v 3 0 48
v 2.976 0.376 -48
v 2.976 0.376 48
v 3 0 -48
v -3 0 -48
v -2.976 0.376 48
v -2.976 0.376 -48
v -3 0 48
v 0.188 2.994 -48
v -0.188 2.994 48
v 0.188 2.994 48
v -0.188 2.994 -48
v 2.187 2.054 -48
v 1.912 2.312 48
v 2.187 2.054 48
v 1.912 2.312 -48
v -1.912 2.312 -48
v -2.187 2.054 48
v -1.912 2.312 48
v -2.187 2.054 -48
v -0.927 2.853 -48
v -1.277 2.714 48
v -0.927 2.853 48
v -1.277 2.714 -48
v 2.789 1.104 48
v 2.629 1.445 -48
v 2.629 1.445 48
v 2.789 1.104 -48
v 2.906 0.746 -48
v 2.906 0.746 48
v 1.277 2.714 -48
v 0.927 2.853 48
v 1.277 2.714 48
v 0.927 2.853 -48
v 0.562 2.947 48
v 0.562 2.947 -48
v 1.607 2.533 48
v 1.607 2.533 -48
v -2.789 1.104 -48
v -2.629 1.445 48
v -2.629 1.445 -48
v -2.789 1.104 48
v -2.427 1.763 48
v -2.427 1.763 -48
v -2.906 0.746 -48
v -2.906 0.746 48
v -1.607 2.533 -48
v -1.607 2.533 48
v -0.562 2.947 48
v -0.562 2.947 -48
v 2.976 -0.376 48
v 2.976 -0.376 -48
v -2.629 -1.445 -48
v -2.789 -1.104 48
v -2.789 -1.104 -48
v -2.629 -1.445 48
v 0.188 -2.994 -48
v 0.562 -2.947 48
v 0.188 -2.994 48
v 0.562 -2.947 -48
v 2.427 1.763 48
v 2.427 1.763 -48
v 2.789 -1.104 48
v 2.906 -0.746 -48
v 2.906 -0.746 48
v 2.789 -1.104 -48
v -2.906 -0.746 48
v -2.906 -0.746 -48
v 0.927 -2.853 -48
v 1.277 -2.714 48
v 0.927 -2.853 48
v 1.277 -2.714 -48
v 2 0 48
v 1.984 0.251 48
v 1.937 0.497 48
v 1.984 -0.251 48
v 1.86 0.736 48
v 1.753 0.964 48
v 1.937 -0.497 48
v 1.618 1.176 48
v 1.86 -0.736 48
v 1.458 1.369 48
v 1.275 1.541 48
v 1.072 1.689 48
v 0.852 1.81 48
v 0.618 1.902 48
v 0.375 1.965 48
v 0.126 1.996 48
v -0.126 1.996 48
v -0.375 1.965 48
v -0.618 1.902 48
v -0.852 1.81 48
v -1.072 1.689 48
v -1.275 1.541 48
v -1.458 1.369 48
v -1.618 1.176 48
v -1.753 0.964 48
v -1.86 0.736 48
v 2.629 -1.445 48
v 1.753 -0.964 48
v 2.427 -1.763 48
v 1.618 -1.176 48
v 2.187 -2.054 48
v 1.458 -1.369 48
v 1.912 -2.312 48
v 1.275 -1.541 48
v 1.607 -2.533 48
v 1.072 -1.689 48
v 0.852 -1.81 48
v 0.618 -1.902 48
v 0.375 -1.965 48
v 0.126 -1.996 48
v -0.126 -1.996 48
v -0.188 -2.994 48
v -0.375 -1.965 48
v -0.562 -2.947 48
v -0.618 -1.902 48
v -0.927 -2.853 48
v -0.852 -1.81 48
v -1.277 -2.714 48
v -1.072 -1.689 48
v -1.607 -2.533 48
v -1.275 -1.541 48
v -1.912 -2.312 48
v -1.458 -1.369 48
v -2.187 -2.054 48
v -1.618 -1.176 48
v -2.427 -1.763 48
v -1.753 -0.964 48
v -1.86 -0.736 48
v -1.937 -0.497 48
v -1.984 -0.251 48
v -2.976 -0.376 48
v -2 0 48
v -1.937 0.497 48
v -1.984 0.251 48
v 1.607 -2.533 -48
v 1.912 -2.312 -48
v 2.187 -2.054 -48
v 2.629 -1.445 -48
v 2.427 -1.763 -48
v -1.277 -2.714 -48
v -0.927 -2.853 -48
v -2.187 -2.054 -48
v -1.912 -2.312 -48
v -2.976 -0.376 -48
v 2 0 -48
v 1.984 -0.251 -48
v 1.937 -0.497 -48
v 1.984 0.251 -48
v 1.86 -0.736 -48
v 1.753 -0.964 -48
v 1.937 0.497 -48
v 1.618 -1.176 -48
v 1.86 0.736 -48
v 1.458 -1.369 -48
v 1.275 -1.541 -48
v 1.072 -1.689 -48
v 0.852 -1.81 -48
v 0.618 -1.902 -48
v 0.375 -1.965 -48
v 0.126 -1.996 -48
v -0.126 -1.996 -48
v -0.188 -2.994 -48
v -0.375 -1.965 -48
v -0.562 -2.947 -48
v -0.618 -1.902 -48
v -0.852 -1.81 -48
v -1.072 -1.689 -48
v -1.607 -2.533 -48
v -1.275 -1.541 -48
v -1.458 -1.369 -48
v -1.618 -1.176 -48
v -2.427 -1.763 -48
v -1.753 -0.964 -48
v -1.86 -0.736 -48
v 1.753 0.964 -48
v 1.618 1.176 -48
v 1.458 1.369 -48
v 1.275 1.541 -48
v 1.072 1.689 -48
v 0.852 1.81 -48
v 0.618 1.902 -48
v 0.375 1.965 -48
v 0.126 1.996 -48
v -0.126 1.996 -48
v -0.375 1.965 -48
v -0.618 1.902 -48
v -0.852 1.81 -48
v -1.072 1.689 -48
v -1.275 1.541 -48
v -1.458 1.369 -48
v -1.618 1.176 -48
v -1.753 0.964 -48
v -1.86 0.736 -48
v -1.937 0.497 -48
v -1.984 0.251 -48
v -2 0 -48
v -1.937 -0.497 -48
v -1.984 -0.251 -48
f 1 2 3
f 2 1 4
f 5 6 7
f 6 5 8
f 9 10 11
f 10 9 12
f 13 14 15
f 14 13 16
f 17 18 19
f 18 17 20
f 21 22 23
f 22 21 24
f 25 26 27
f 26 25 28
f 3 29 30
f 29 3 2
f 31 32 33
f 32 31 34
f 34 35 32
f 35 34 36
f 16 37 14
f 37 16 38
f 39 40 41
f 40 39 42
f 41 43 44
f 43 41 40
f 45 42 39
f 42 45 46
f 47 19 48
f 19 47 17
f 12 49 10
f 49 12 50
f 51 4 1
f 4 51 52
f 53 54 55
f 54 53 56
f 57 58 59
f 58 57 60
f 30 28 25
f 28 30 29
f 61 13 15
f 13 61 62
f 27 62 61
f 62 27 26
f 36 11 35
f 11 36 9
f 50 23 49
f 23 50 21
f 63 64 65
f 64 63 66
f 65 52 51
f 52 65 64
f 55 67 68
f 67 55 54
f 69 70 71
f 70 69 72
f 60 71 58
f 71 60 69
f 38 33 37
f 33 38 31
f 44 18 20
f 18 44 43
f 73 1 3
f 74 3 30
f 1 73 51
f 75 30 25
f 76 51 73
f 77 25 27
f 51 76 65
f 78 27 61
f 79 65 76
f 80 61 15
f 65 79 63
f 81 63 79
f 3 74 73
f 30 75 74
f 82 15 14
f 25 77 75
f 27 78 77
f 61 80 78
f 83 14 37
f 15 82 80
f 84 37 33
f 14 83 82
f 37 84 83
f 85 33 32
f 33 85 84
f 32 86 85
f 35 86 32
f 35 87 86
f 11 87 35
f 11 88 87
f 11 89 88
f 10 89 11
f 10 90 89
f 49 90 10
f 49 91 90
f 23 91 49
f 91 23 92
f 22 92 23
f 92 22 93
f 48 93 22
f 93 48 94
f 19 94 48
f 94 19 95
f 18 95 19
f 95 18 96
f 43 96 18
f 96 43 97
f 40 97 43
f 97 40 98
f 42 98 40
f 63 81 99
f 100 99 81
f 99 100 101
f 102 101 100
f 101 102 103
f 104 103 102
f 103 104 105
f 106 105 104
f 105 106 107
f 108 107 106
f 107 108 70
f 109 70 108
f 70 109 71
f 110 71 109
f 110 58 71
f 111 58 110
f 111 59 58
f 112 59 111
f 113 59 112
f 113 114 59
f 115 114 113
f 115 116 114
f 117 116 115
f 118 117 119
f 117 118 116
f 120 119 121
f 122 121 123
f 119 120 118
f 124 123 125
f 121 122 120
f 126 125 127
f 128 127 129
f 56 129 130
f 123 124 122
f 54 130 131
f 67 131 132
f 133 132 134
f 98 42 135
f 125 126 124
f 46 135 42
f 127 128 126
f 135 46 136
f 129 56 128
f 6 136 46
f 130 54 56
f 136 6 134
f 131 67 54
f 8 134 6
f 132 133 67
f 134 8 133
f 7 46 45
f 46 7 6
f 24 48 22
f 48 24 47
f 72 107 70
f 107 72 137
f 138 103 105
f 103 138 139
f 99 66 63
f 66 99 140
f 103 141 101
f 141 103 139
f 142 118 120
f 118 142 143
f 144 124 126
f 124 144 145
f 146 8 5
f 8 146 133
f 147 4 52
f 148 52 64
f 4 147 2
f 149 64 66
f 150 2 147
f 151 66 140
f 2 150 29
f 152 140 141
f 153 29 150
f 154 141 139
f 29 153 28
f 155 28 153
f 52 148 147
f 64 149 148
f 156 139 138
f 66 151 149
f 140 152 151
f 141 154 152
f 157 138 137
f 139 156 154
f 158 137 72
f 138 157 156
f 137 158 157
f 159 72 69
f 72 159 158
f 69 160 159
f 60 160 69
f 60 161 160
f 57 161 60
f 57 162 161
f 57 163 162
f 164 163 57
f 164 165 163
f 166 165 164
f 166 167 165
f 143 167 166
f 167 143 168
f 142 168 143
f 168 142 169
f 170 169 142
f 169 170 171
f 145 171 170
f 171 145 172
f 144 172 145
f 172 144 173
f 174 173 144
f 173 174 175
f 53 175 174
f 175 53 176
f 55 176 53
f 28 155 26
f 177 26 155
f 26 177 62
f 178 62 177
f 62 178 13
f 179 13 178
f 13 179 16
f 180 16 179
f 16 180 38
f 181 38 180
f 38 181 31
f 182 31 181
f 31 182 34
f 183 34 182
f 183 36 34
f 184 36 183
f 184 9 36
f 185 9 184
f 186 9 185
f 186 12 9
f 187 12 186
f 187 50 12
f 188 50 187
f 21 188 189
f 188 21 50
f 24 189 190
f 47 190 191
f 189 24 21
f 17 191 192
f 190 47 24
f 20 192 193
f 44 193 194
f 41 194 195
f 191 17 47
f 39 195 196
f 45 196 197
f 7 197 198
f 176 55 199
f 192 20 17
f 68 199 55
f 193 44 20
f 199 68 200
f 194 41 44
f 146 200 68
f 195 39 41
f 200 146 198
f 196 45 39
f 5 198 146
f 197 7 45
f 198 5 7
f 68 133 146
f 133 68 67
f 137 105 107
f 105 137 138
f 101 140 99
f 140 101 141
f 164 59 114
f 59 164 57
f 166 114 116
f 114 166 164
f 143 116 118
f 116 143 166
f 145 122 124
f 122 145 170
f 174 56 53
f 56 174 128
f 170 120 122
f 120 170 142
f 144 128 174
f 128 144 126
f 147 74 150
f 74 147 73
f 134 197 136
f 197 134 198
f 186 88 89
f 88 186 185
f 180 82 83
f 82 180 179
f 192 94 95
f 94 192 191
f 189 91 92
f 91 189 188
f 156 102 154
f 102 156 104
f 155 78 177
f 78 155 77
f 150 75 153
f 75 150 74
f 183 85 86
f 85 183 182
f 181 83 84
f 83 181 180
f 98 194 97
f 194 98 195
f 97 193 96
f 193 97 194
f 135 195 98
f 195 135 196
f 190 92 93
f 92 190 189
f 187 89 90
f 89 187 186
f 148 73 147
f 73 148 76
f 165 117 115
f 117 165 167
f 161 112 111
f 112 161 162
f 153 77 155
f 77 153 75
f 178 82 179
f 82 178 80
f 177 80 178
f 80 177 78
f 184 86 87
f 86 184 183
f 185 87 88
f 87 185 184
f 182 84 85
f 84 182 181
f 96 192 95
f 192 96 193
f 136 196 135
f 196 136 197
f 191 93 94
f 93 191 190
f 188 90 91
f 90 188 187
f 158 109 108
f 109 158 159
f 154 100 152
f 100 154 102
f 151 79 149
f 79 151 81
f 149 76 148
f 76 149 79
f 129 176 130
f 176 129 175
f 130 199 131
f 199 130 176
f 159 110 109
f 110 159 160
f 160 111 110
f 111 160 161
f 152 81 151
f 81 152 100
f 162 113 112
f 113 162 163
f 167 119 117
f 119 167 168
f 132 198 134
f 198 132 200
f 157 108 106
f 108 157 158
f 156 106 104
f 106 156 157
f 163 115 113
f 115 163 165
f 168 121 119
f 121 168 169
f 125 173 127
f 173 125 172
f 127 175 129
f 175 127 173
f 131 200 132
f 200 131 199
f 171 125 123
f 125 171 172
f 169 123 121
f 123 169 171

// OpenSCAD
$fn = 50;


difference() {
	union() {
		translate(v = [0, 0, -48.0000000000]) {
			cylinder(h = 96, r = 3.0000000000);
		}
	}
	union() {
		translate(v = [0, 0, -100.0000000000]) {
			cylinder(h = 200, r = 2.0000000000);
		}
	}
}
